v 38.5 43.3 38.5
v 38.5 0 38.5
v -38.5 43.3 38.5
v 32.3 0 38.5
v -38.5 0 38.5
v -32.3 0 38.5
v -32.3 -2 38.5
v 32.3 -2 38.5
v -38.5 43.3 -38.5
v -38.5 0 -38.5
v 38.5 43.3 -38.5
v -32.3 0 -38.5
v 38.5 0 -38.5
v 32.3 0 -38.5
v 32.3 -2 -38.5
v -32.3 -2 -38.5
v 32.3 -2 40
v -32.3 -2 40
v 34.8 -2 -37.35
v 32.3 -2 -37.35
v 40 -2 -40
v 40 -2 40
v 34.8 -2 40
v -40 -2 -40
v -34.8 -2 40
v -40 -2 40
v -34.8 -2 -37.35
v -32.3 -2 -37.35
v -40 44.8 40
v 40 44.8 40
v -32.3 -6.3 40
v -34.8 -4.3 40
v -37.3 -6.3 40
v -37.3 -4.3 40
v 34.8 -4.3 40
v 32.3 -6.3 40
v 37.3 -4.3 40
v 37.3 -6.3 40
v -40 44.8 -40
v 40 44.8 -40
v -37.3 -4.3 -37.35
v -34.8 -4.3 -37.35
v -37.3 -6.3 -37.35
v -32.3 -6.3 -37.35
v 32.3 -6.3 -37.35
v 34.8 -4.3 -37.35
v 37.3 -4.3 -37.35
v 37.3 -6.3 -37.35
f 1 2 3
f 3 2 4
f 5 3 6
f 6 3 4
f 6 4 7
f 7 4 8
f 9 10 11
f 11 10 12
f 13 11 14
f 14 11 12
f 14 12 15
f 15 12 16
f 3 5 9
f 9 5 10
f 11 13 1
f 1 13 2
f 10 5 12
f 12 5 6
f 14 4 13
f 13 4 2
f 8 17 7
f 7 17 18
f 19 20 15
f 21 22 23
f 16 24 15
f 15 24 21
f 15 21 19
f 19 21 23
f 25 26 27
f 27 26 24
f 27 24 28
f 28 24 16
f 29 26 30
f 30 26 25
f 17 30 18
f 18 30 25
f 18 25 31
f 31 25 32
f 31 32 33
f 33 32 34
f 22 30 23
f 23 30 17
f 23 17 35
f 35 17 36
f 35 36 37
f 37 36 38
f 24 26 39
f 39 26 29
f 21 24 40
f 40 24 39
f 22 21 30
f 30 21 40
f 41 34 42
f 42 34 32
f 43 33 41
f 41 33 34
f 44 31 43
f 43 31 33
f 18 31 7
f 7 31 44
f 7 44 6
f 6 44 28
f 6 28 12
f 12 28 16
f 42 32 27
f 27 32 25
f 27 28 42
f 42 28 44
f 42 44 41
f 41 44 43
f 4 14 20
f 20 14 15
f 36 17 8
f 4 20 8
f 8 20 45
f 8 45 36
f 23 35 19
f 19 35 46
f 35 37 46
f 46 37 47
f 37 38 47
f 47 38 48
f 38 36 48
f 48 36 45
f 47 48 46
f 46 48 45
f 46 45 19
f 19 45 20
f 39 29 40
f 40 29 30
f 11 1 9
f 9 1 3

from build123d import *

# Parameters (mm, degrees)
SKETCH1_W           = 80
SKETCH1_H           = 80
BOSS_EXTRUDE3_DEPTH = 2
BOSS_EXTRUDE5_DEPTH = 77.35
CUT_EXTRUDE1_REACH  = 58.918
SKETCH7_W           = 64.6
SKETCH7_H           = 77
SKETCH5_W           = 80
SKETCH5_H           = 80
SKETCH5_W_2         = 77
SKETCH5_H_2         = 77
BOSS_EXTRUDE6_DEPTH = 44.8
SKETCH8_W           = 80
SKETCH8_H           = 80
BOSS_EXTRUDE7_DEPTH = 1.5


with BuildPart() as part:
    # Sketch1 → Boss-Extrude3 (new body)
    with BuildSketch(Plane(origin=(0, 0, 0), x_dir=(1, 0, 0), z_dir=(0, 1, 0))):
        Rectangle(SKETCH1_W, SKETCH1_H)
    extrude(amount=-BOSS_EXTRUDE3_DEPTH)

    # Sketch3 → Boss-Extrude5 (add)
    with BuildSketch(Plane.XY.offset(40)):
        Polygon((-32.3, -2), (-34.8, -2), (-34.8, -4.3), (-37.3, -4.3), (-37.3, -6.3), (-32.3, -6.3), align=None)
        Polygon((32.3, -6.3), (37.3, -6.3), (37.3, -4.3), (34.8, -4.3), (34.8, -2), (32.3, -2), align=None)
    extrude(amount=-BOSS_EXTRUDE5_DEPTH)

    # Sketch7 → Cut-Extrude1 (cut, up to next)
    with BuildSketch(Plane(origin=(0, 0, 0), x_dir=(1, 0, 0), z_dir=(0, 1, 0)), mode=Mode.PRIVATE) as cut_extrude1_sk1:
        Rectangle(SKETCH7_W, SKETCH7_H)
    cut_extrude1_tool1 = extrude(cut_extrude1_sk1.sketch, amount=-CUT_EXTRUDE1_REACH, mode=Mode.PRIVATE) & part.part
    add(cut_extrude1_tool1.solids().sort_by_distance((0, 0, 0))[0], mode=Mode.SUBTRACT)

    # Sketch5 → Boss-Extrude6 (add)
    with BuildSketch(Plane(origin=(0, 0, 0), x_dir=(1, 0, 0), z_dir=(0, 1, 0))):
        Rectangle(SKETCH5_W, SKETCH5_H)
        Rectangle(SKETCH5_W_2, SKETCH5_H_2, mode=Mode.SUBTRACT)
    extrude(amount=BOSS_EXTRUDE6_DEPTH)

    # Sketch8 → Boss-Extrude7 (add)
    with BuildSketch(Plane(origin=(0, 44.8, 0), x_dir=(1, 0, 0), z_dir=(0, 1, 0))):
        Rectangle(SKETCH8_W, SKETCH8_H)
    extrude(amount=-BOSS_EXTRUDE7_DEPTH)


solid = part.part
